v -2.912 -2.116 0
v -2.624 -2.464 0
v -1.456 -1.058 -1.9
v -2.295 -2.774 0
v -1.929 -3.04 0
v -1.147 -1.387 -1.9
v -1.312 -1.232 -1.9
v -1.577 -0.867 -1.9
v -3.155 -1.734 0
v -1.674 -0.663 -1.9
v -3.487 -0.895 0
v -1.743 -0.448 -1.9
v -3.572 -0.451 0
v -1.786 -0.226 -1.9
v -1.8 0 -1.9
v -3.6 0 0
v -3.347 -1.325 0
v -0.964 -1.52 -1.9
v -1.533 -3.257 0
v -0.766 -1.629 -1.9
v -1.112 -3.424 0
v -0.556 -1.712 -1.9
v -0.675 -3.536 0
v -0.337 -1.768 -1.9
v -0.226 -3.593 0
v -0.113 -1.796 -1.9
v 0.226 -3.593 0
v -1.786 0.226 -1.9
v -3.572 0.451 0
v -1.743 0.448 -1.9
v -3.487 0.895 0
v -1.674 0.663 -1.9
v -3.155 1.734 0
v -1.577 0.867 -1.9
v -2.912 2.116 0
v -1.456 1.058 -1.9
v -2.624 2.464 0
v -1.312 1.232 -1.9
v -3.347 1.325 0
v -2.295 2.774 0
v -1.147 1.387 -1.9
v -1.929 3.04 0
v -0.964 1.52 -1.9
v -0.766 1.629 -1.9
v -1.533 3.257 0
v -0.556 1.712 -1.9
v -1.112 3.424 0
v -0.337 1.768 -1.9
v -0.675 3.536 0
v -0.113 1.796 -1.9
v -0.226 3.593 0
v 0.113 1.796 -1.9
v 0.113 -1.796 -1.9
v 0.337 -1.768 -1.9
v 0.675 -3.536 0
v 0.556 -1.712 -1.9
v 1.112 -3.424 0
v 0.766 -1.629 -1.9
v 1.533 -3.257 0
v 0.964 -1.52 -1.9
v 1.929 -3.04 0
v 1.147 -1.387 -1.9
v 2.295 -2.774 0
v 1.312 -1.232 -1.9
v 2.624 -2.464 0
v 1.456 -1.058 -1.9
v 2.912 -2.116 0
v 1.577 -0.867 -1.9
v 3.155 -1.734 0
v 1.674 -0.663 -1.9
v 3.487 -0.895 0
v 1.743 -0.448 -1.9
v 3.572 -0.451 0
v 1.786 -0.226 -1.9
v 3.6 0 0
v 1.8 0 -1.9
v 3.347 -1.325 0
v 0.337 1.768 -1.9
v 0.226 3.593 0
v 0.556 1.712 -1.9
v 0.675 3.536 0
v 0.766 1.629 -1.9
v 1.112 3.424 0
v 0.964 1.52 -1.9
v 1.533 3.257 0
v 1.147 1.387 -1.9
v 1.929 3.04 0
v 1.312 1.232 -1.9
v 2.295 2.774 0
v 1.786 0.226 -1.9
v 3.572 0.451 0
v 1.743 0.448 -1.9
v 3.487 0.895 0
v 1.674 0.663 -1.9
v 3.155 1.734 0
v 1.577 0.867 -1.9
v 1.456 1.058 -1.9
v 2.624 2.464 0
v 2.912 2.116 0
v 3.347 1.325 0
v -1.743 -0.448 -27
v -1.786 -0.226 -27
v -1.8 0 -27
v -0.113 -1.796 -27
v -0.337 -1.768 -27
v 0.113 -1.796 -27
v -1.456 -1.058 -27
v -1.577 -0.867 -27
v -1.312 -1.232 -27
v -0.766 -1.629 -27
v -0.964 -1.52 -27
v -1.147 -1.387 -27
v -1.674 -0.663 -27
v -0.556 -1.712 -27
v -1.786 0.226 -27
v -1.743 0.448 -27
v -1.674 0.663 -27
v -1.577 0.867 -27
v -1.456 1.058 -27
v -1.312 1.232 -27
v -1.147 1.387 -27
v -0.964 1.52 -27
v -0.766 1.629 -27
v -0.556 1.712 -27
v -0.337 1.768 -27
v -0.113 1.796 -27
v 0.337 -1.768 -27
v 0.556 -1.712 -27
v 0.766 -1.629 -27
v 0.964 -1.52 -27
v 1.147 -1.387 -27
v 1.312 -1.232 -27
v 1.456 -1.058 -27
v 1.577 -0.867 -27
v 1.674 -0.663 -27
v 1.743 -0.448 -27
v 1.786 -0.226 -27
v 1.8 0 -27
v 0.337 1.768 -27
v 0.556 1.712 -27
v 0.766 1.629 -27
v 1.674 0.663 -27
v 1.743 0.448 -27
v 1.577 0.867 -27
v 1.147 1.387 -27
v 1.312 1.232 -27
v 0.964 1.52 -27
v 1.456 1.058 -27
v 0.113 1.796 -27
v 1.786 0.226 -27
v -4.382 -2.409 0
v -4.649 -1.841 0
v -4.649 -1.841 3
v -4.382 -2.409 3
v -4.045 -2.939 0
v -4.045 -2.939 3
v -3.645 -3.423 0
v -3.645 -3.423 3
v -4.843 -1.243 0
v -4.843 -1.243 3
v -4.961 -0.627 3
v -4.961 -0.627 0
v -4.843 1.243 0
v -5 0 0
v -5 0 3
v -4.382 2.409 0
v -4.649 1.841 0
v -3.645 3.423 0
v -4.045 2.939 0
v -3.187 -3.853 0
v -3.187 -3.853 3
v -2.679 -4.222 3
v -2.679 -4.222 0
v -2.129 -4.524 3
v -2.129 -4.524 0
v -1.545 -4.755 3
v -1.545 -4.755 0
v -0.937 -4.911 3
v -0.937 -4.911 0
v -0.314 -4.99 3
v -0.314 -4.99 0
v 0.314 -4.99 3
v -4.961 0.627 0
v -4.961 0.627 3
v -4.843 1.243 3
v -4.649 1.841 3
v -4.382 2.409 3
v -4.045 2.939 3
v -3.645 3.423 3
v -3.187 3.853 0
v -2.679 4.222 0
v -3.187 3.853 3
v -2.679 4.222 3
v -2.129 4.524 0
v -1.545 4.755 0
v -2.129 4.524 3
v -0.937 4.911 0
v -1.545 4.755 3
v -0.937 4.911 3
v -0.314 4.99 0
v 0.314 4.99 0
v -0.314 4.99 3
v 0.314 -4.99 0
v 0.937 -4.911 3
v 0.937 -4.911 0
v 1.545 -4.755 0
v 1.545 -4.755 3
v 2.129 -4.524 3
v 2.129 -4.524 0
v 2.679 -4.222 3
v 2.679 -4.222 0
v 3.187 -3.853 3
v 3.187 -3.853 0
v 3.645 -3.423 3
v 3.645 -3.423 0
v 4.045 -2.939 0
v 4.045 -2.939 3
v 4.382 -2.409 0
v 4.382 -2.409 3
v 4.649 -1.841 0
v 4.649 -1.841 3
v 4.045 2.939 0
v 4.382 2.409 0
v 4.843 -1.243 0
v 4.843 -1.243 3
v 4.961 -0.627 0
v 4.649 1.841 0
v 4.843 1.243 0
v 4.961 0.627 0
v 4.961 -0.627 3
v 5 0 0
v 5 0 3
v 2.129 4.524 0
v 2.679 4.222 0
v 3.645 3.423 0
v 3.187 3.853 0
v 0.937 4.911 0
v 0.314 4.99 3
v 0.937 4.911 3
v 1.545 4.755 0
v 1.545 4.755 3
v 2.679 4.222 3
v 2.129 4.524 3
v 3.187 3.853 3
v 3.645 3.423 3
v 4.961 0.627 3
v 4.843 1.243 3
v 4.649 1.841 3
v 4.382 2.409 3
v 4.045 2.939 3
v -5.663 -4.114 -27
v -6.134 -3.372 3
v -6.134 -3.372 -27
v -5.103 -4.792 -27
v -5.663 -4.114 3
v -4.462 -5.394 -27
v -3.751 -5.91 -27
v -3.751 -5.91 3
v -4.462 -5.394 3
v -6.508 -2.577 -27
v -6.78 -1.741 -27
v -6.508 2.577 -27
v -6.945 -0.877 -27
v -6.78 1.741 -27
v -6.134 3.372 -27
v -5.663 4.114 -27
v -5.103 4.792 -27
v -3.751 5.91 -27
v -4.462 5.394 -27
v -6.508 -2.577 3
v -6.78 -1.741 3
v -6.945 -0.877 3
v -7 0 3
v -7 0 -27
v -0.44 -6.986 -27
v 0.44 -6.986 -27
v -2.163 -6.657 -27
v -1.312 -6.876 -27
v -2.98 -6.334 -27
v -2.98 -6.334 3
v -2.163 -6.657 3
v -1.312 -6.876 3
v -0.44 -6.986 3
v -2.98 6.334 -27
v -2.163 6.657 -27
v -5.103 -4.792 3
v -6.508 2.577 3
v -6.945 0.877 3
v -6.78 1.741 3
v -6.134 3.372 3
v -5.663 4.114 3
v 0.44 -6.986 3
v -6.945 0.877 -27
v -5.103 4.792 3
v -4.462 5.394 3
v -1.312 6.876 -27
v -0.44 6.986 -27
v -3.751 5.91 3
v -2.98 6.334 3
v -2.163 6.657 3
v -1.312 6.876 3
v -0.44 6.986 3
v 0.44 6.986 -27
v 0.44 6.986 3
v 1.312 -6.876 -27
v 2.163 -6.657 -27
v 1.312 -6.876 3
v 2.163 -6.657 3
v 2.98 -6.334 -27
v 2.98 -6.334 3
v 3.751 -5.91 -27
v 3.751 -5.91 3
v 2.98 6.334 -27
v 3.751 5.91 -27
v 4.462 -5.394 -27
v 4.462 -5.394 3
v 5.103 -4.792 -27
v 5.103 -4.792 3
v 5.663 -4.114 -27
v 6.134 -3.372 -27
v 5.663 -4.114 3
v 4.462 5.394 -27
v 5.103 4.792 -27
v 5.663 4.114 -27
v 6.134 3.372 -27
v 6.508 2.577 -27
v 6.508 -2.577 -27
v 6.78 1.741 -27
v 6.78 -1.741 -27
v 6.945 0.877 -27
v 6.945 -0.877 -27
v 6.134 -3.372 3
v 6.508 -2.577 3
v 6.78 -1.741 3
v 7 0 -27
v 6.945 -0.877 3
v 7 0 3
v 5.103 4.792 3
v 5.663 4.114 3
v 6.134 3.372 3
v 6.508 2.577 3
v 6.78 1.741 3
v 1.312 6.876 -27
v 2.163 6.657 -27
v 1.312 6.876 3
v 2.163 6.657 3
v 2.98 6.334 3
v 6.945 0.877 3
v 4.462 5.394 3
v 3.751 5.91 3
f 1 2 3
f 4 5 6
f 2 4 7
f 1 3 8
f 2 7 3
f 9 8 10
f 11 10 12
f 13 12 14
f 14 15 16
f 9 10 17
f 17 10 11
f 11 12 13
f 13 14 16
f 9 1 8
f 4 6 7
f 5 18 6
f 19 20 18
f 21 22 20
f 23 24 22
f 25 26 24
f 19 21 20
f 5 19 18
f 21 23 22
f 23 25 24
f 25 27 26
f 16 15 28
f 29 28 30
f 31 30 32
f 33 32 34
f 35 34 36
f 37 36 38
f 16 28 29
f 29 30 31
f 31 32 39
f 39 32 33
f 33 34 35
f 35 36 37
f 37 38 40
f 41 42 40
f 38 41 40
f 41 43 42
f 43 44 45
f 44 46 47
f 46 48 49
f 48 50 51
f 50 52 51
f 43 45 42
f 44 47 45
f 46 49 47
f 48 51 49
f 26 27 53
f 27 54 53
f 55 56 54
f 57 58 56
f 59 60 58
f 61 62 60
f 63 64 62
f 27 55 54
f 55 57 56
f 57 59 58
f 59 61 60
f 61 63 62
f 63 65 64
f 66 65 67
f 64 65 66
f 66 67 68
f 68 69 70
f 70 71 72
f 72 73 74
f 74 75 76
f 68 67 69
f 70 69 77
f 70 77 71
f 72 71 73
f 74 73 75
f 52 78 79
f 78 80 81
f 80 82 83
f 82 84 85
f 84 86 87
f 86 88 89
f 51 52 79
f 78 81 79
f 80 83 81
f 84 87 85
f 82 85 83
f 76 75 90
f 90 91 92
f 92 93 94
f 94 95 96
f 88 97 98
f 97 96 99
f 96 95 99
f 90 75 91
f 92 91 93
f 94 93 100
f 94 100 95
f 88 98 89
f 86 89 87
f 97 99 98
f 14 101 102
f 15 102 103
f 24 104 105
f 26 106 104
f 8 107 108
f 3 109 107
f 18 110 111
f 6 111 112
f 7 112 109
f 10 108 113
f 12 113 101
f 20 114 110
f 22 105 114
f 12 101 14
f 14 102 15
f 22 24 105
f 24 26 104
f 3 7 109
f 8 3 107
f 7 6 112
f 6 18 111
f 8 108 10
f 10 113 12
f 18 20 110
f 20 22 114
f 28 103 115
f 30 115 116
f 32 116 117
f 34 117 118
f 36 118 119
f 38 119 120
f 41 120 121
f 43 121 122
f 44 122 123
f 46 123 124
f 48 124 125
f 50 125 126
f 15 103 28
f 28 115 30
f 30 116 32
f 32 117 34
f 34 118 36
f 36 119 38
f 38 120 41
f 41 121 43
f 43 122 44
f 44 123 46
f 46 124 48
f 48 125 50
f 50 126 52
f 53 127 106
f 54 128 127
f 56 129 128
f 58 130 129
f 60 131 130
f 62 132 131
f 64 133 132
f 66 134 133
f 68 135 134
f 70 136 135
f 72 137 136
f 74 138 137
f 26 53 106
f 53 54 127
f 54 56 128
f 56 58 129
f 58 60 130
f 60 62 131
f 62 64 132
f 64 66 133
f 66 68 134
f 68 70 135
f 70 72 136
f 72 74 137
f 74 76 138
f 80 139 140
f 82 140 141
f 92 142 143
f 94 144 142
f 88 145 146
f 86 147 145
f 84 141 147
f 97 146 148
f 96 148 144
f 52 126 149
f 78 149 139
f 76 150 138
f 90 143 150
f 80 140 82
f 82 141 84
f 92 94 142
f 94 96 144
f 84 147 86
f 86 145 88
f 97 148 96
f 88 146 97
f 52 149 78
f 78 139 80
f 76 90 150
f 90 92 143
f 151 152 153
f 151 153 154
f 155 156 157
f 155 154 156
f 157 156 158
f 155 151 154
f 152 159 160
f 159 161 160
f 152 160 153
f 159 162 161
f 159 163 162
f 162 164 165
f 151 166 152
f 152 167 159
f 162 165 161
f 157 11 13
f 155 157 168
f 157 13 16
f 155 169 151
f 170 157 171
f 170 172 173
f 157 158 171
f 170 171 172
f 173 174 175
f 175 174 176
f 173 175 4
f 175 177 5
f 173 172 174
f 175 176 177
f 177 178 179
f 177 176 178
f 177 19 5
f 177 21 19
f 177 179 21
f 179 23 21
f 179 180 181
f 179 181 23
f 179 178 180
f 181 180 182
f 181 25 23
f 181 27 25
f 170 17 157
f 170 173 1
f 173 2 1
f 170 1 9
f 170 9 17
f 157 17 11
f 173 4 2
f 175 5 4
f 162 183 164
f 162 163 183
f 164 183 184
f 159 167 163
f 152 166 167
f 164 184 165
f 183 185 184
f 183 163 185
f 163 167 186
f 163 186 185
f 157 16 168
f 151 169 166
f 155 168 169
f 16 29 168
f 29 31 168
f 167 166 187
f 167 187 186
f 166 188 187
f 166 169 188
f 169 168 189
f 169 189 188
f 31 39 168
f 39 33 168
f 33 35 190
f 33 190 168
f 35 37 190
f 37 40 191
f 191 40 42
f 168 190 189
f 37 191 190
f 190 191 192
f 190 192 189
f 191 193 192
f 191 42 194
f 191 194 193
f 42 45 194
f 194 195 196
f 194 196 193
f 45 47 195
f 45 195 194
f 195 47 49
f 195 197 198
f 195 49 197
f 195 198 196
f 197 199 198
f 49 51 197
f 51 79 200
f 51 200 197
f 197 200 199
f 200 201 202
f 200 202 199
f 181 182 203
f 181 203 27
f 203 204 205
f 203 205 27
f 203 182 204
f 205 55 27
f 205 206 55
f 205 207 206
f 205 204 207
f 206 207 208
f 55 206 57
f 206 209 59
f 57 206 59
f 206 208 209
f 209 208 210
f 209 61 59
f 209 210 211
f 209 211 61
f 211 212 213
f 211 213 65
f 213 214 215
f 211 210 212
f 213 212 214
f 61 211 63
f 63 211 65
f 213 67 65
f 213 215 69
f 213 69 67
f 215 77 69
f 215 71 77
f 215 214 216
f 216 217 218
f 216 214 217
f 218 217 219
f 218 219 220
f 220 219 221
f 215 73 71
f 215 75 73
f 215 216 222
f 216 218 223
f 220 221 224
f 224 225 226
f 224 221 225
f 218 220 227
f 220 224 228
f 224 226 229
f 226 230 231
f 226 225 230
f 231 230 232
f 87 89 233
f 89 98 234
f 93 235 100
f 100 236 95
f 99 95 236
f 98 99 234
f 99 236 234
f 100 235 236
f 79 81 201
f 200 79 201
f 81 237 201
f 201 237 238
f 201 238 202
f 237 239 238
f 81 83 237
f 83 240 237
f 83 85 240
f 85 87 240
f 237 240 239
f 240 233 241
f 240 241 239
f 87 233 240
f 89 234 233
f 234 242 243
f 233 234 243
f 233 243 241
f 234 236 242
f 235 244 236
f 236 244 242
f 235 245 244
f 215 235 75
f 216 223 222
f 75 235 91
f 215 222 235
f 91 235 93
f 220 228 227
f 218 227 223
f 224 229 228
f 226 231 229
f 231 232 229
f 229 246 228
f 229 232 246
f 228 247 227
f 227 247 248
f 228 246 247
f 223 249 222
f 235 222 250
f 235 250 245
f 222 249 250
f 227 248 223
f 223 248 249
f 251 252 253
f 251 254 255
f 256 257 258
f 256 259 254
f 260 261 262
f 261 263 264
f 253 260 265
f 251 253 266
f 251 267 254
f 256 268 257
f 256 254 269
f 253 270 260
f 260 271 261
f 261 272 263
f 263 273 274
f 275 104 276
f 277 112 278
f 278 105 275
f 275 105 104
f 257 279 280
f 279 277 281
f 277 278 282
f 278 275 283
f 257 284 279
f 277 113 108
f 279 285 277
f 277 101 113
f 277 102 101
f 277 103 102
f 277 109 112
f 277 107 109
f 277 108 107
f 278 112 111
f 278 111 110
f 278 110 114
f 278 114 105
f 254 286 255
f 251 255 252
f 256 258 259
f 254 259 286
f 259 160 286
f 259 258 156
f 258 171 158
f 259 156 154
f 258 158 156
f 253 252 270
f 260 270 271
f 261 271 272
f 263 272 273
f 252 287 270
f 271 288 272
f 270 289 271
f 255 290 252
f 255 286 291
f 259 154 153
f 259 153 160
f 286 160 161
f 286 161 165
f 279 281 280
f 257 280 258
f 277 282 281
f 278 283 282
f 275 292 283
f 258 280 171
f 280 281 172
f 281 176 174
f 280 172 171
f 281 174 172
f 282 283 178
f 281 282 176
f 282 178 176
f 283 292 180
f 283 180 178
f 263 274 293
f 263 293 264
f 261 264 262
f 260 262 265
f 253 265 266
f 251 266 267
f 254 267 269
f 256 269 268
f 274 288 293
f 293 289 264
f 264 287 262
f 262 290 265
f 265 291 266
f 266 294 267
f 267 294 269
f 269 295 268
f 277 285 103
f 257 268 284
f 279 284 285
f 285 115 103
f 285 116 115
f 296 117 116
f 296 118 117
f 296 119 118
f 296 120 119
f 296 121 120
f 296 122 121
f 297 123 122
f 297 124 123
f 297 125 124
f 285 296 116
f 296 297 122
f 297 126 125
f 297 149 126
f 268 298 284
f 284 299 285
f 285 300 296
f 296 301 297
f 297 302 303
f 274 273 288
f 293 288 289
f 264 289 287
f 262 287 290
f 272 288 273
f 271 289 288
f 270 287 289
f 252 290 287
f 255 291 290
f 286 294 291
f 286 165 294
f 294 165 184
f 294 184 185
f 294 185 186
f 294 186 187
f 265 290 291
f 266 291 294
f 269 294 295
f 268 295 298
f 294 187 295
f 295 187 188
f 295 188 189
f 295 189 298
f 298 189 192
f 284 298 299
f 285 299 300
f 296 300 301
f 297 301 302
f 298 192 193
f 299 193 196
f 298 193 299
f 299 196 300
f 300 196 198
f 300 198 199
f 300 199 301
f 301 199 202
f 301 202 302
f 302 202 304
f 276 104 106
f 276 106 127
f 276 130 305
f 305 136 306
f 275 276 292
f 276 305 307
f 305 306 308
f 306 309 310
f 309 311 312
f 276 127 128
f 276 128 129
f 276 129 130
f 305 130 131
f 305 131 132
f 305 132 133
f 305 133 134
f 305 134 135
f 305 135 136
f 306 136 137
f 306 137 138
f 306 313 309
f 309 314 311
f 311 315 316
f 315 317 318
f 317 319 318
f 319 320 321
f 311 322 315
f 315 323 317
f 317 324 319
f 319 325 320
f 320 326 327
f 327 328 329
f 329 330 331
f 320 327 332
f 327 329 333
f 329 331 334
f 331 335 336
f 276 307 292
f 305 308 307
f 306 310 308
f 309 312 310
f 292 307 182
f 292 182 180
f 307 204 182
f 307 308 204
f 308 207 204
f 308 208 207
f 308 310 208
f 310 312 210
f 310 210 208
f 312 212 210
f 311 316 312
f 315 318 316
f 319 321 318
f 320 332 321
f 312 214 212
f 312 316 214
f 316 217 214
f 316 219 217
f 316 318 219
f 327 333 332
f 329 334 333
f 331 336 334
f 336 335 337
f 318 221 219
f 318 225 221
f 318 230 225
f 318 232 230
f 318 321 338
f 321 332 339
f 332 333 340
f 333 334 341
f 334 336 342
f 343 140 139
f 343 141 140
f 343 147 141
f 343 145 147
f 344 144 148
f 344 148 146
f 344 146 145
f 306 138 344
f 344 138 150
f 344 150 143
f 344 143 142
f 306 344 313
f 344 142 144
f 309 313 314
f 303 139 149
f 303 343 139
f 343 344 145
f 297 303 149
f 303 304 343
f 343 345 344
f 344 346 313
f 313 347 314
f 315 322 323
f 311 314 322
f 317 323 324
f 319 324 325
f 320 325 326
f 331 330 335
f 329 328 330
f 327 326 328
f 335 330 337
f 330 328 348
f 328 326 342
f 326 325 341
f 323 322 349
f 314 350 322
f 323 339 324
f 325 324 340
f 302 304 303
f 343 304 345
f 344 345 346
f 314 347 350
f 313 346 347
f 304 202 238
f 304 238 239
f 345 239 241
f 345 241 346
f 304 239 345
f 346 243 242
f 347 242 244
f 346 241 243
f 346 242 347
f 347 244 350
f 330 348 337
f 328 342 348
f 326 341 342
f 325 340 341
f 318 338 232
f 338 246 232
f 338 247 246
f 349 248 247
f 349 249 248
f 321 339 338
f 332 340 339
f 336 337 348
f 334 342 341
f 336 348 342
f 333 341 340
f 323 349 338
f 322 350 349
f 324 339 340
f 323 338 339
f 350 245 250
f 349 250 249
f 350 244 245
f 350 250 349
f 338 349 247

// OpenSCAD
$fn = 50;

difference() {
	union() {
		translate(v = [0, 0, -27.0]) {
			cylinder(h = 30, r = 7.0);
		}
	}
	union() {
		translate(v = [0, 0, 0]) {
			rotate(a = [0, 0, 0]) {
				difference() {
					union() {
						translate(v = [0, 0, -30.0]) {
							cylinder(h = 30, r = 1.5);
						}
						translate(v = [0, 0, -1.9]) {
							cylinder(h = 1.9, r1 = 1.8, r2 = 3.6);
						}
						translate(v = [0, 0, -30.0]) {
							cylinder(h = 30, r = 1.8);
						}
						translate(v = [0, 0, -30.0]) {
							cylinder(h = 30, r = 1.5);
						}
					}
					union();
				}
			}
		}
		#cylinder(h = 3, r = 5.0);
	}
}
